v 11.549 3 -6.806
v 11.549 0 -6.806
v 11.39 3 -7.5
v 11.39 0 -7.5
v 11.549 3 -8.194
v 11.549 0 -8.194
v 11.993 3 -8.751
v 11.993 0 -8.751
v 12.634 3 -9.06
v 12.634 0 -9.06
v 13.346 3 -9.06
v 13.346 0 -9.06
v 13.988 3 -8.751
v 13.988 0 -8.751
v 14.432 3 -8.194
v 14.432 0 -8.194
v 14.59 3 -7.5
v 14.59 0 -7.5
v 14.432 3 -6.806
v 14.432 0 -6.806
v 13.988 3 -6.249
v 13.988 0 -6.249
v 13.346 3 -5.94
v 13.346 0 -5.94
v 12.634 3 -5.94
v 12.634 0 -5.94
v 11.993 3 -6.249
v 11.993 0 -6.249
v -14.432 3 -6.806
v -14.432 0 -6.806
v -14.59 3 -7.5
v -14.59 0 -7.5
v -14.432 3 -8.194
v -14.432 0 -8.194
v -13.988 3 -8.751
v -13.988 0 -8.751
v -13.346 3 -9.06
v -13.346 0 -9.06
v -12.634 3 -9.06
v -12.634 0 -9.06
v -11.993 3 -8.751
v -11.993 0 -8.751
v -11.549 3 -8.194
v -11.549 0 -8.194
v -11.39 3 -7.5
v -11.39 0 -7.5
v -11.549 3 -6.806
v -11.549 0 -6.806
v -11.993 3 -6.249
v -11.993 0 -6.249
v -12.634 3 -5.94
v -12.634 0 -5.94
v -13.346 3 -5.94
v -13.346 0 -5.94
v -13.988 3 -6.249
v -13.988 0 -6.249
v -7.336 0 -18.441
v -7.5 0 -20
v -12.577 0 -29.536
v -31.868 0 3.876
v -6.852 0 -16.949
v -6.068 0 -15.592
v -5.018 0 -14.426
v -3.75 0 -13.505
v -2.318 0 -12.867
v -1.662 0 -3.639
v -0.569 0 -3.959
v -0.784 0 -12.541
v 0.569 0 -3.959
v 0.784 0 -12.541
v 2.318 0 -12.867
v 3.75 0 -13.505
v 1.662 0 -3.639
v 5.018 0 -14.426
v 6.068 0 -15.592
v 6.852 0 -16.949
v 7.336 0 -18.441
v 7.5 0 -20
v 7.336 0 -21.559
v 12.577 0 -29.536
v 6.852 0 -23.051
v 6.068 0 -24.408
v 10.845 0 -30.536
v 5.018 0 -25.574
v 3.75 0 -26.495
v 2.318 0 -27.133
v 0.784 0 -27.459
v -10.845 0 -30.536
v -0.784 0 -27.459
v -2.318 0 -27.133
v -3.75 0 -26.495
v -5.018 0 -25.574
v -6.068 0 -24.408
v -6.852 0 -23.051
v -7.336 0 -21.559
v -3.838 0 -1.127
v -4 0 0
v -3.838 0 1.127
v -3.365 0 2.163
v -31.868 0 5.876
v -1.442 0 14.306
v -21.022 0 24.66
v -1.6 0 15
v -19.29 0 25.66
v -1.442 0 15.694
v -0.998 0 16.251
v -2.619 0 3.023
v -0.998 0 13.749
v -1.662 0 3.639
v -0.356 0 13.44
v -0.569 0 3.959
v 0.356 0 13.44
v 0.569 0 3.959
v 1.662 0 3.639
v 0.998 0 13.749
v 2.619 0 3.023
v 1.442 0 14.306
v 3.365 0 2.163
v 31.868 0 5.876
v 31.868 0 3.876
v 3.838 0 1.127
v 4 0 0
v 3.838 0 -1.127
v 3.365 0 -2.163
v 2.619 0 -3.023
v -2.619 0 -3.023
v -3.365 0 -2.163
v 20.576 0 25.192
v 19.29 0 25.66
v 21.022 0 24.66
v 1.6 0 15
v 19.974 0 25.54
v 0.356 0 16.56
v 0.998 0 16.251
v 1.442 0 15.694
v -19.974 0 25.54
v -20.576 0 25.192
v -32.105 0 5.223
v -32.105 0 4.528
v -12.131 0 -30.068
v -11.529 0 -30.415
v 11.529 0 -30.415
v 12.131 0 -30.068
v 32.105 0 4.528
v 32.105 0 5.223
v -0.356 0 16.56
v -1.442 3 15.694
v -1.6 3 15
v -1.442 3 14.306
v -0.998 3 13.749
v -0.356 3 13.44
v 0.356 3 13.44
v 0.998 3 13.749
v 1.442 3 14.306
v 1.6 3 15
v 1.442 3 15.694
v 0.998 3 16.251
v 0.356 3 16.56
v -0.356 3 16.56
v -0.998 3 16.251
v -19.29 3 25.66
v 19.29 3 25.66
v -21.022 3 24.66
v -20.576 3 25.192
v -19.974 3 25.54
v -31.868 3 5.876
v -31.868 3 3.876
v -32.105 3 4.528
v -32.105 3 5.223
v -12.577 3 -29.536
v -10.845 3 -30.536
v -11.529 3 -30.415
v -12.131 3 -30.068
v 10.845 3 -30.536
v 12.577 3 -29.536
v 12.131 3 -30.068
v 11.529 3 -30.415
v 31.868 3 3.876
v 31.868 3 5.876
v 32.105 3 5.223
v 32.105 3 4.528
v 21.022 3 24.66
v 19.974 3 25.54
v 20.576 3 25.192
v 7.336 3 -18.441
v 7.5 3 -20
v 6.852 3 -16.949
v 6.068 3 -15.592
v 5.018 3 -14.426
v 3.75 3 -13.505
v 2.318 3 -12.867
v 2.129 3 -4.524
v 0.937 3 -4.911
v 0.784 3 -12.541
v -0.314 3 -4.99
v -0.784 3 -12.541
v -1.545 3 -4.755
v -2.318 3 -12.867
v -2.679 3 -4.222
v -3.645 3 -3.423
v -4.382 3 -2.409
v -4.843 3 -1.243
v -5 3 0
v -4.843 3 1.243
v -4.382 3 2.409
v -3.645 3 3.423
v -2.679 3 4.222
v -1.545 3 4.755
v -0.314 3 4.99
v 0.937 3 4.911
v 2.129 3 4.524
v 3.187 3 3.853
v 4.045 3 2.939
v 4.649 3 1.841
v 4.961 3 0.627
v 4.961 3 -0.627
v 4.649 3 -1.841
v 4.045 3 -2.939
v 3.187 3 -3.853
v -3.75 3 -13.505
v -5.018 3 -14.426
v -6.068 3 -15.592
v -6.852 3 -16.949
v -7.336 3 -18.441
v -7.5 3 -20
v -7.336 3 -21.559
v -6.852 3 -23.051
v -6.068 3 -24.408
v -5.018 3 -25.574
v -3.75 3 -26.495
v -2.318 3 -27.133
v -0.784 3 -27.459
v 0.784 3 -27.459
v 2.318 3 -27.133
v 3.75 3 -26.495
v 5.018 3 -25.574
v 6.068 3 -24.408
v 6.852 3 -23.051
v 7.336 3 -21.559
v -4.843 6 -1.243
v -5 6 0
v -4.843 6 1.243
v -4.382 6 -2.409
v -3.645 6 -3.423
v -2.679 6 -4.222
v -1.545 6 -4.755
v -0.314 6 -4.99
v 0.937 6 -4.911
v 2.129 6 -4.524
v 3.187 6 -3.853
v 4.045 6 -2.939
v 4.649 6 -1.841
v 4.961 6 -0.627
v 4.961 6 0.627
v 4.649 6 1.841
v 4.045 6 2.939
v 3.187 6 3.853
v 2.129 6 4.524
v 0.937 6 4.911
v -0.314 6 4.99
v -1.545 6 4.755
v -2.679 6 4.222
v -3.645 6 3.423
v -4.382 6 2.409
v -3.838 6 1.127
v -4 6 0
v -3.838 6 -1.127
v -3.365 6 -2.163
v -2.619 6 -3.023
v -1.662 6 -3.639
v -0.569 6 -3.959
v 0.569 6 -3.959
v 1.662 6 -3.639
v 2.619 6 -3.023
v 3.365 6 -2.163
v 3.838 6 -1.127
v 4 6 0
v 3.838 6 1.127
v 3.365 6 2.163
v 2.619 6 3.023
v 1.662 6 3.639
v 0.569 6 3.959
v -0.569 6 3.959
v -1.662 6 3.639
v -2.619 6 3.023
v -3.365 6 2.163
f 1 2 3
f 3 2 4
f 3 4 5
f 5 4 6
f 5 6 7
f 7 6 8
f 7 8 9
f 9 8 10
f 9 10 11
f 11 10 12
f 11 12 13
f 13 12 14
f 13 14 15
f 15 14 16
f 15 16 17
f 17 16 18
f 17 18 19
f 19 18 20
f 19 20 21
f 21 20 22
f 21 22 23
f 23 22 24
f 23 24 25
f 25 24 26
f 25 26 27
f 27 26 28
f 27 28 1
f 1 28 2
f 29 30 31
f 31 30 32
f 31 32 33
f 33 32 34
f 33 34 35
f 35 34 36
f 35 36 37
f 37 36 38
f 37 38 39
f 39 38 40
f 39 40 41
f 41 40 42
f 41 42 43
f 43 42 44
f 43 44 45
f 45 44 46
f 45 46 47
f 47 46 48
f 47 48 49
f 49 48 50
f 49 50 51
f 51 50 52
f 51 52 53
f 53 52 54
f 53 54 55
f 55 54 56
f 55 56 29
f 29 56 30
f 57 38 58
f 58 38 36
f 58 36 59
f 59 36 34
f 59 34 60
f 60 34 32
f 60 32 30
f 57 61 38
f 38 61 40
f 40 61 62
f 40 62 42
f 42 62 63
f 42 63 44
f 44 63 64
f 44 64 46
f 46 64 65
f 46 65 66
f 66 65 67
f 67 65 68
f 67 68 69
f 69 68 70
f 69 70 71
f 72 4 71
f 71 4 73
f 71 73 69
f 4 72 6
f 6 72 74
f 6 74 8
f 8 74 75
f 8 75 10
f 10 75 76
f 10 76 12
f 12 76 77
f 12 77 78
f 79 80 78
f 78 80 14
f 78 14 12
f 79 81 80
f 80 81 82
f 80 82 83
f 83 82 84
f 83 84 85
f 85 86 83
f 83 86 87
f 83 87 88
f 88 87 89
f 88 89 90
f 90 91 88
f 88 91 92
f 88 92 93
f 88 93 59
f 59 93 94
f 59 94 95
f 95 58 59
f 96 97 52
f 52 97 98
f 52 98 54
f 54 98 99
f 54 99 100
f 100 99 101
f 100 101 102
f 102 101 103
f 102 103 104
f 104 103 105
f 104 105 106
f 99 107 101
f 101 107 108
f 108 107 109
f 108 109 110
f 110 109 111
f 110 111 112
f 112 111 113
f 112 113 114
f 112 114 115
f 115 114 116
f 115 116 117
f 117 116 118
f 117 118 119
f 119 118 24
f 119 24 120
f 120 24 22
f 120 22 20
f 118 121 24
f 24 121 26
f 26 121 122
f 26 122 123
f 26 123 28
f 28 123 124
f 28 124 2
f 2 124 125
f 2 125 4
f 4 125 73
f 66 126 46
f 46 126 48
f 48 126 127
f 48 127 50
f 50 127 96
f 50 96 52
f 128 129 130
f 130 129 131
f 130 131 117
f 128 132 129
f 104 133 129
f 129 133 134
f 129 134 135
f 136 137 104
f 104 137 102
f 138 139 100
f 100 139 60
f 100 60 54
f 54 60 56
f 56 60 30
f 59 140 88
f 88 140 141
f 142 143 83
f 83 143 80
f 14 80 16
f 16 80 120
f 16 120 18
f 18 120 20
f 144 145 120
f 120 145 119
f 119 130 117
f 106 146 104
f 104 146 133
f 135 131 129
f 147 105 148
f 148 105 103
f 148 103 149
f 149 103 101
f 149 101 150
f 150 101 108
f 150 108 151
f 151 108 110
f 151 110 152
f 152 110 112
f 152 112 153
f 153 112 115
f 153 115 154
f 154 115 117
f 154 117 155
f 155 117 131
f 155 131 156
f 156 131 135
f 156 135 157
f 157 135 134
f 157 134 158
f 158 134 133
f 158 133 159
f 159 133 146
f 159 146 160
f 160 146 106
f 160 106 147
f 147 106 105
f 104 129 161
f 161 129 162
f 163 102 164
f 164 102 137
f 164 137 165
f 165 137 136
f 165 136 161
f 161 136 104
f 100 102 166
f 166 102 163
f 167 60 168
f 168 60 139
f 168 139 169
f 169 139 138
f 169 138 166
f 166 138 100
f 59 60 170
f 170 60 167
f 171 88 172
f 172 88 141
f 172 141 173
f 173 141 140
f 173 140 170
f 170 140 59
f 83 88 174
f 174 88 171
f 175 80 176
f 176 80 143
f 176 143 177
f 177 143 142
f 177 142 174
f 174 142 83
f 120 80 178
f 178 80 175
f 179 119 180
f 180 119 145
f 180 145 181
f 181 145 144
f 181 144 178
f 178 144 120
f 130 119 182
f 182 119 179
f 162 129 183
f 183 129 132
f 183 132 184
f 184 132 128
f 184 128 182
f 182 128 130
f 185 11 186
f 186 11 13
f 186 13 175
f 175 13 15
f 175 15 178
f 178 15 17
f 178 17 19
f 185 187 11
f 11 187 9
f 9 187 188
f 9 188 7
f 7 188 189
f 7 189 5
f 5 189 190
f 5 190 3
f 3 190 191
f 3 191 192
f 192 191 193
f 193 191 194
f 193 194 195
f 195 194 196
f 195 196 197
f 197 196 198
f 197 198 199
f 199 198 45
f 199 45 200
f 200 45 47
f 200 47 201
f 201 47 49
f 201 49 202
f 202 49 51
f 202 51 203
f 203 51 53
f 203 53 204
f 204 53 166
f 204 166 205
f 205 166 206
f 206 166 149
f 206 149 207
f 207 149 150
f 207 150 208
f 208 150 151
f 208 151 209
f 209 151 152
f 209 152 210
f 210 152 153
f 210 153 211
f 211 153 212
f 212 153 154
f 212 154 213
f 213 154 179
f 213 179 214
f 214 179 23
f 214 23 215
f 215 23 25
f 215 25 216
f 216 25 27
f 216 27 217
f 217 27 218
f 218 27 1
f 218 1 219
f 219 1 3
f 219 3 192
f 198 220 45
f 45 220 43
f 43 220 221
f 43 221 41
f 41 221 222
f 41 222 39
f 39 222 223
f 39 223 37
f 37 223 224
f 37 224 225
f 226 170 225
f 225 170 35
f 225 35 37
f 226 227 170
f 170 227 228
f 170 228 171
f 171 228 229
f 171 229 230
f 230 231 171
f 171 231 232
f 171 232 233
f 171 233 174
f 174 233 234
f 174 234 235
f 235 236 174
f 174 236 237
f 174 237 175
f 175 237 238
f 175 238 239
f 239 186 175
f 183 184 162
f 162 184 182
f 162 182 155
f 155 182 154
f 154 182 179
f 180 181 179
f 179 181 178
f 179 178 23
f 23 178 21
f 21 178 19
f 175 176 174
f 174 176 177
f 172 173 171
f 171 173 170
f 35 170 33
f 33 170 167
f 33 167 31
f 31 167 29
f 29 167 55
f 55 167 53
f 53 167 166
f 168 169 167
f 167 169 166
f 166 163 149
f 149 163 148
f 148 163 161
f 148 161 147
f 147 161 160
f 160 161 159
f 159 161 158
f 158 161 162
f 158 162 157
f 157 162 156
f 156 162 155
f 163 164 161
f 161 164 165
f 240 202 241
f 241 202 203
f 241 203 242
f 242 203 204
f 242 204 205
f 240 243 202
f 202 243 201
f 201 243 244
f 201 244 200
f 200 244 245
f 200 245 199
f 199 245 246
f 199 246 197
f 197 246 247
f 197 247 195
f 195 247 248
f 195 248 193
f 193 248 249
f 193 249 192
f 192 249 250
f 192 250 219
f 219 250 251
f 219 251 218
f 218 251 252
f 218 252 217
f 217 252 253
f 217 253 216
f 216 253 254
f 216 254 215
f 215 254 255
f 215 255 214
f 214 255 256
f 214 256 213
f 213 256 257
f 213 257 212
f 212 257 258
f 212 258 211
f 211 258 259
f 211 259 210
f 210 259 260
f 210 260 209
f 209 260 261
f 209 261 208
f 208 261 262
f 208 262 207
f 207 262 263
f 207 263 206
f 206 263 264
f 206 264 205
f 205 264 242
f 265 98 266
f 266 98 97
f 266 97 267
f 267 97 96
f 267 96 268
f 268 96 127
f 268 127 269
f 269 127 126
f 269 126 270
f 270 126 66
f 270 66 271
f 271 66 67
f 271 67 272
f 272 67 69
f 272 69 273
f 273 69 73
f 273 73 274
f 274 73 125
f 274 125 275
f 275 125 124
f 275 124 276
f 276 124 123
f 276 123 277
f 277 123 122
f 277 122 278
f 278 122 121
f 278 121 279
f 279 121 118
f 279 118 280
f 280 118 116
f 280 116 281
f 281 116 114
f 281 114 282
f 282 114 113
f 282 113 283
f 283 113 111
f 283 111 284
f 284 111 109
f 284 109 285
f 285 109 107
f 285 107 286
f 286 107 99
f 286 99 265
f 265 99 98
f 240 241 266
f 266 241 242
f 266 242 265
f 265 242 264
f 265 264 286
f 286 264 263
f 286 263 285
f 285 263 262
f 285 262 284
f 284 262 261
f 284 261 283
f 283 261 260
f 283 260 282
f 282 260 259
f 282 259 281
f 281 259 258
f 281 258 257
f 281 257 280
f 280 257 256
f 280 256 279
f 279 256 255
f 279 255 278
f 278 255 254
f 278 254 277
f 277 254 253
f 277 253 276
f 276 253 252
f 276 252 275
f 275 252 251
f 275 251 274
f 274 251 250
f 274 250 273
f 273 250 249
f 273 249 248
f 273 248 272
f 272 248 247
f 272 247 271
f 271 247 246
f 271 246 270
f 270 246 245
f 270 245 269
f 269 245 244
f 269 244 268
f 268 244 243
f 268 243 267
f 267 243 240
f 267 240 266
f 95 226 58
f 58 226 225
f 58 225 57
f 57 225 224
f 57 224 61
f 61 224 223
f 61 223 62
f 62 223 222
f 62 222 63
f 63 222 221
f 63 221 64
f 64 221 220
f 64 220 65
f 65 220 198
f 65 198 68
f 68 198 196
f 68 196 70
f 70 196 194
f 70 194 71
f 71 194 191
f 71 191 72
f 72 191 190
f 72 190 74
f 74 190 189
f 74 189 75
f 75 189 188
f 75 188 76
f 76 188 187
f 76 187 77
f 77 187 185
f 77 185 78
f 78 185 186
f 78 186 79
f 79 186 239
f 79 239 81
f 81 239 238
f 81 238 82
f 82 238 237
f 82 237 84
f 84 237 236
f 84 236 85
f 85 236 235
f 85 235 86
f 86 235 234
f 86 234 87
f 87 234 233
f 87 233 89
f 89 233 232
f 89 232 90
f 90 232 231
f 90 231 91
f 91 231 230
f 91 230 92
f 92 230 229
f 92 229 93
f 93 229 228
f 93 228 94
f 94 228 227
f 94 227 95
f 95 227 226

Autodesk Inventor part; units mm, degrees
ref_plane "YZ Plane" through (0, 0, 0) normal (1, 0, 0) x (0, 1, 0)
ref_plane "XZ Plane" through (0, 0, 0) normal (0, 1, 0) x (-1, 0, 0)
ref_plane "XY Plane" through (0, 0, 0) normal (0, 0, 1) x (1, 0, 0)
sketch "Sketch1" plane through (0, 0, 0) normal (0, 1, 0) x (-1, 0, 0)
  circle A0 centre (-12.9904, -7.5) radius 1.6
  circle A1 centre (12.9904, -7.5) radius 1.6
  circle A2 centre (0, 15) radius 1.6
  line L0 (31.4449, 6.6077) -> (21.0222, 24.6603)
  line L1 (10.8453, -30.5359) -> (-10.8453, -30.5359)
  line L2 (-21.0222, 24.6603) -> (-31.8675, 5.8756)
  line L3 (-31.8675, 3.8756) -> (-12.5774, -29.5359)
  line L4 (-19.2902, 25.6603) -> (19.2902, 25.6603)
  line L5 (20.4449, 25.6603) -> (31.8675, 5.8756)
  line L6 (31.8675, 3.8756) -> (12.5774, -29.5359)
  arc A3 (21.0222, 24.6603) -> (19.2902, 25.6603) centre (19.2902, 23.6603) ccw
  arc A4 (31.8675, 3.8756) -> (31.8675, 5.8756) centre (30.1355, 4.8756) ccw
  arc A5 (10.8453, -30.5359) -> (12.5774, -29.5359) centre (10.8453, -28.5359) ccw
  arc A6 (-12.5774, -29.5359) -> (-10.8453, -30.5359) centre (-10.8453, -28.5359) ccw
  arc A7 (-19.2902, 25.6603) -> (-21.0222, 24.6603) centre (-19.2902, 23.6603) ccw
  arc A8 (-31.8675, 5.8756) -> (-31.8675, 3.8756) centre (-30.1355, 4.8756) ccw
  circle A9 centre (0, 0) radius 4
  circle A10 centre (0, 0) radius 5
  dimension "d41" = 360
  dimension "d76" = 2
  dimension "d84" = 8
  dimension "d86" = 10
extrude "Extrusion8" add sketch "Sketch1" along normal blind 3 contours L5 A4 L6 A5 L1 A6 L3 A8 L2 A7 L4 A3 L0
extrude "Extrusion9" add sketch "Sketch1" along normal blind 6 contours A10
sketch "Sketch4" plane through (0, 3, 0) normal (0, 1, 0) x (1, 0, 0)
  point P0 (0, 0)
sketch "Sketch5" plane through (0, 3, 0) normal (0, 1, 0) x (1, 0, 0)
  circle A0 centre (0, 20) radius 7.5
  point P0 (0, 0)
  dimension "d91" = 15
extrude "Extrusion10" cut sketch "Sketch5" against normal blind 6
equation "\"BendRadius\" = Thickness"
equation "\"BendReliefWidth\" = Thickness"
equation "\"BendReliefDepth\" = 0.5 * Thickness"
equation "\"CornerReliefSize\" = 4 * Thickness"
equation "\"MinimumRemnant\" = 2 * Thickness"
equation "\"TransitionRadius\" = BendRadius"
equation "\"JacobiRadiusSize\" = BendRadius"
equation "\"GapSize\" = Thickness"
equation "\"Thickness\" = 0.5"
properties part number "Draw_Pen"
